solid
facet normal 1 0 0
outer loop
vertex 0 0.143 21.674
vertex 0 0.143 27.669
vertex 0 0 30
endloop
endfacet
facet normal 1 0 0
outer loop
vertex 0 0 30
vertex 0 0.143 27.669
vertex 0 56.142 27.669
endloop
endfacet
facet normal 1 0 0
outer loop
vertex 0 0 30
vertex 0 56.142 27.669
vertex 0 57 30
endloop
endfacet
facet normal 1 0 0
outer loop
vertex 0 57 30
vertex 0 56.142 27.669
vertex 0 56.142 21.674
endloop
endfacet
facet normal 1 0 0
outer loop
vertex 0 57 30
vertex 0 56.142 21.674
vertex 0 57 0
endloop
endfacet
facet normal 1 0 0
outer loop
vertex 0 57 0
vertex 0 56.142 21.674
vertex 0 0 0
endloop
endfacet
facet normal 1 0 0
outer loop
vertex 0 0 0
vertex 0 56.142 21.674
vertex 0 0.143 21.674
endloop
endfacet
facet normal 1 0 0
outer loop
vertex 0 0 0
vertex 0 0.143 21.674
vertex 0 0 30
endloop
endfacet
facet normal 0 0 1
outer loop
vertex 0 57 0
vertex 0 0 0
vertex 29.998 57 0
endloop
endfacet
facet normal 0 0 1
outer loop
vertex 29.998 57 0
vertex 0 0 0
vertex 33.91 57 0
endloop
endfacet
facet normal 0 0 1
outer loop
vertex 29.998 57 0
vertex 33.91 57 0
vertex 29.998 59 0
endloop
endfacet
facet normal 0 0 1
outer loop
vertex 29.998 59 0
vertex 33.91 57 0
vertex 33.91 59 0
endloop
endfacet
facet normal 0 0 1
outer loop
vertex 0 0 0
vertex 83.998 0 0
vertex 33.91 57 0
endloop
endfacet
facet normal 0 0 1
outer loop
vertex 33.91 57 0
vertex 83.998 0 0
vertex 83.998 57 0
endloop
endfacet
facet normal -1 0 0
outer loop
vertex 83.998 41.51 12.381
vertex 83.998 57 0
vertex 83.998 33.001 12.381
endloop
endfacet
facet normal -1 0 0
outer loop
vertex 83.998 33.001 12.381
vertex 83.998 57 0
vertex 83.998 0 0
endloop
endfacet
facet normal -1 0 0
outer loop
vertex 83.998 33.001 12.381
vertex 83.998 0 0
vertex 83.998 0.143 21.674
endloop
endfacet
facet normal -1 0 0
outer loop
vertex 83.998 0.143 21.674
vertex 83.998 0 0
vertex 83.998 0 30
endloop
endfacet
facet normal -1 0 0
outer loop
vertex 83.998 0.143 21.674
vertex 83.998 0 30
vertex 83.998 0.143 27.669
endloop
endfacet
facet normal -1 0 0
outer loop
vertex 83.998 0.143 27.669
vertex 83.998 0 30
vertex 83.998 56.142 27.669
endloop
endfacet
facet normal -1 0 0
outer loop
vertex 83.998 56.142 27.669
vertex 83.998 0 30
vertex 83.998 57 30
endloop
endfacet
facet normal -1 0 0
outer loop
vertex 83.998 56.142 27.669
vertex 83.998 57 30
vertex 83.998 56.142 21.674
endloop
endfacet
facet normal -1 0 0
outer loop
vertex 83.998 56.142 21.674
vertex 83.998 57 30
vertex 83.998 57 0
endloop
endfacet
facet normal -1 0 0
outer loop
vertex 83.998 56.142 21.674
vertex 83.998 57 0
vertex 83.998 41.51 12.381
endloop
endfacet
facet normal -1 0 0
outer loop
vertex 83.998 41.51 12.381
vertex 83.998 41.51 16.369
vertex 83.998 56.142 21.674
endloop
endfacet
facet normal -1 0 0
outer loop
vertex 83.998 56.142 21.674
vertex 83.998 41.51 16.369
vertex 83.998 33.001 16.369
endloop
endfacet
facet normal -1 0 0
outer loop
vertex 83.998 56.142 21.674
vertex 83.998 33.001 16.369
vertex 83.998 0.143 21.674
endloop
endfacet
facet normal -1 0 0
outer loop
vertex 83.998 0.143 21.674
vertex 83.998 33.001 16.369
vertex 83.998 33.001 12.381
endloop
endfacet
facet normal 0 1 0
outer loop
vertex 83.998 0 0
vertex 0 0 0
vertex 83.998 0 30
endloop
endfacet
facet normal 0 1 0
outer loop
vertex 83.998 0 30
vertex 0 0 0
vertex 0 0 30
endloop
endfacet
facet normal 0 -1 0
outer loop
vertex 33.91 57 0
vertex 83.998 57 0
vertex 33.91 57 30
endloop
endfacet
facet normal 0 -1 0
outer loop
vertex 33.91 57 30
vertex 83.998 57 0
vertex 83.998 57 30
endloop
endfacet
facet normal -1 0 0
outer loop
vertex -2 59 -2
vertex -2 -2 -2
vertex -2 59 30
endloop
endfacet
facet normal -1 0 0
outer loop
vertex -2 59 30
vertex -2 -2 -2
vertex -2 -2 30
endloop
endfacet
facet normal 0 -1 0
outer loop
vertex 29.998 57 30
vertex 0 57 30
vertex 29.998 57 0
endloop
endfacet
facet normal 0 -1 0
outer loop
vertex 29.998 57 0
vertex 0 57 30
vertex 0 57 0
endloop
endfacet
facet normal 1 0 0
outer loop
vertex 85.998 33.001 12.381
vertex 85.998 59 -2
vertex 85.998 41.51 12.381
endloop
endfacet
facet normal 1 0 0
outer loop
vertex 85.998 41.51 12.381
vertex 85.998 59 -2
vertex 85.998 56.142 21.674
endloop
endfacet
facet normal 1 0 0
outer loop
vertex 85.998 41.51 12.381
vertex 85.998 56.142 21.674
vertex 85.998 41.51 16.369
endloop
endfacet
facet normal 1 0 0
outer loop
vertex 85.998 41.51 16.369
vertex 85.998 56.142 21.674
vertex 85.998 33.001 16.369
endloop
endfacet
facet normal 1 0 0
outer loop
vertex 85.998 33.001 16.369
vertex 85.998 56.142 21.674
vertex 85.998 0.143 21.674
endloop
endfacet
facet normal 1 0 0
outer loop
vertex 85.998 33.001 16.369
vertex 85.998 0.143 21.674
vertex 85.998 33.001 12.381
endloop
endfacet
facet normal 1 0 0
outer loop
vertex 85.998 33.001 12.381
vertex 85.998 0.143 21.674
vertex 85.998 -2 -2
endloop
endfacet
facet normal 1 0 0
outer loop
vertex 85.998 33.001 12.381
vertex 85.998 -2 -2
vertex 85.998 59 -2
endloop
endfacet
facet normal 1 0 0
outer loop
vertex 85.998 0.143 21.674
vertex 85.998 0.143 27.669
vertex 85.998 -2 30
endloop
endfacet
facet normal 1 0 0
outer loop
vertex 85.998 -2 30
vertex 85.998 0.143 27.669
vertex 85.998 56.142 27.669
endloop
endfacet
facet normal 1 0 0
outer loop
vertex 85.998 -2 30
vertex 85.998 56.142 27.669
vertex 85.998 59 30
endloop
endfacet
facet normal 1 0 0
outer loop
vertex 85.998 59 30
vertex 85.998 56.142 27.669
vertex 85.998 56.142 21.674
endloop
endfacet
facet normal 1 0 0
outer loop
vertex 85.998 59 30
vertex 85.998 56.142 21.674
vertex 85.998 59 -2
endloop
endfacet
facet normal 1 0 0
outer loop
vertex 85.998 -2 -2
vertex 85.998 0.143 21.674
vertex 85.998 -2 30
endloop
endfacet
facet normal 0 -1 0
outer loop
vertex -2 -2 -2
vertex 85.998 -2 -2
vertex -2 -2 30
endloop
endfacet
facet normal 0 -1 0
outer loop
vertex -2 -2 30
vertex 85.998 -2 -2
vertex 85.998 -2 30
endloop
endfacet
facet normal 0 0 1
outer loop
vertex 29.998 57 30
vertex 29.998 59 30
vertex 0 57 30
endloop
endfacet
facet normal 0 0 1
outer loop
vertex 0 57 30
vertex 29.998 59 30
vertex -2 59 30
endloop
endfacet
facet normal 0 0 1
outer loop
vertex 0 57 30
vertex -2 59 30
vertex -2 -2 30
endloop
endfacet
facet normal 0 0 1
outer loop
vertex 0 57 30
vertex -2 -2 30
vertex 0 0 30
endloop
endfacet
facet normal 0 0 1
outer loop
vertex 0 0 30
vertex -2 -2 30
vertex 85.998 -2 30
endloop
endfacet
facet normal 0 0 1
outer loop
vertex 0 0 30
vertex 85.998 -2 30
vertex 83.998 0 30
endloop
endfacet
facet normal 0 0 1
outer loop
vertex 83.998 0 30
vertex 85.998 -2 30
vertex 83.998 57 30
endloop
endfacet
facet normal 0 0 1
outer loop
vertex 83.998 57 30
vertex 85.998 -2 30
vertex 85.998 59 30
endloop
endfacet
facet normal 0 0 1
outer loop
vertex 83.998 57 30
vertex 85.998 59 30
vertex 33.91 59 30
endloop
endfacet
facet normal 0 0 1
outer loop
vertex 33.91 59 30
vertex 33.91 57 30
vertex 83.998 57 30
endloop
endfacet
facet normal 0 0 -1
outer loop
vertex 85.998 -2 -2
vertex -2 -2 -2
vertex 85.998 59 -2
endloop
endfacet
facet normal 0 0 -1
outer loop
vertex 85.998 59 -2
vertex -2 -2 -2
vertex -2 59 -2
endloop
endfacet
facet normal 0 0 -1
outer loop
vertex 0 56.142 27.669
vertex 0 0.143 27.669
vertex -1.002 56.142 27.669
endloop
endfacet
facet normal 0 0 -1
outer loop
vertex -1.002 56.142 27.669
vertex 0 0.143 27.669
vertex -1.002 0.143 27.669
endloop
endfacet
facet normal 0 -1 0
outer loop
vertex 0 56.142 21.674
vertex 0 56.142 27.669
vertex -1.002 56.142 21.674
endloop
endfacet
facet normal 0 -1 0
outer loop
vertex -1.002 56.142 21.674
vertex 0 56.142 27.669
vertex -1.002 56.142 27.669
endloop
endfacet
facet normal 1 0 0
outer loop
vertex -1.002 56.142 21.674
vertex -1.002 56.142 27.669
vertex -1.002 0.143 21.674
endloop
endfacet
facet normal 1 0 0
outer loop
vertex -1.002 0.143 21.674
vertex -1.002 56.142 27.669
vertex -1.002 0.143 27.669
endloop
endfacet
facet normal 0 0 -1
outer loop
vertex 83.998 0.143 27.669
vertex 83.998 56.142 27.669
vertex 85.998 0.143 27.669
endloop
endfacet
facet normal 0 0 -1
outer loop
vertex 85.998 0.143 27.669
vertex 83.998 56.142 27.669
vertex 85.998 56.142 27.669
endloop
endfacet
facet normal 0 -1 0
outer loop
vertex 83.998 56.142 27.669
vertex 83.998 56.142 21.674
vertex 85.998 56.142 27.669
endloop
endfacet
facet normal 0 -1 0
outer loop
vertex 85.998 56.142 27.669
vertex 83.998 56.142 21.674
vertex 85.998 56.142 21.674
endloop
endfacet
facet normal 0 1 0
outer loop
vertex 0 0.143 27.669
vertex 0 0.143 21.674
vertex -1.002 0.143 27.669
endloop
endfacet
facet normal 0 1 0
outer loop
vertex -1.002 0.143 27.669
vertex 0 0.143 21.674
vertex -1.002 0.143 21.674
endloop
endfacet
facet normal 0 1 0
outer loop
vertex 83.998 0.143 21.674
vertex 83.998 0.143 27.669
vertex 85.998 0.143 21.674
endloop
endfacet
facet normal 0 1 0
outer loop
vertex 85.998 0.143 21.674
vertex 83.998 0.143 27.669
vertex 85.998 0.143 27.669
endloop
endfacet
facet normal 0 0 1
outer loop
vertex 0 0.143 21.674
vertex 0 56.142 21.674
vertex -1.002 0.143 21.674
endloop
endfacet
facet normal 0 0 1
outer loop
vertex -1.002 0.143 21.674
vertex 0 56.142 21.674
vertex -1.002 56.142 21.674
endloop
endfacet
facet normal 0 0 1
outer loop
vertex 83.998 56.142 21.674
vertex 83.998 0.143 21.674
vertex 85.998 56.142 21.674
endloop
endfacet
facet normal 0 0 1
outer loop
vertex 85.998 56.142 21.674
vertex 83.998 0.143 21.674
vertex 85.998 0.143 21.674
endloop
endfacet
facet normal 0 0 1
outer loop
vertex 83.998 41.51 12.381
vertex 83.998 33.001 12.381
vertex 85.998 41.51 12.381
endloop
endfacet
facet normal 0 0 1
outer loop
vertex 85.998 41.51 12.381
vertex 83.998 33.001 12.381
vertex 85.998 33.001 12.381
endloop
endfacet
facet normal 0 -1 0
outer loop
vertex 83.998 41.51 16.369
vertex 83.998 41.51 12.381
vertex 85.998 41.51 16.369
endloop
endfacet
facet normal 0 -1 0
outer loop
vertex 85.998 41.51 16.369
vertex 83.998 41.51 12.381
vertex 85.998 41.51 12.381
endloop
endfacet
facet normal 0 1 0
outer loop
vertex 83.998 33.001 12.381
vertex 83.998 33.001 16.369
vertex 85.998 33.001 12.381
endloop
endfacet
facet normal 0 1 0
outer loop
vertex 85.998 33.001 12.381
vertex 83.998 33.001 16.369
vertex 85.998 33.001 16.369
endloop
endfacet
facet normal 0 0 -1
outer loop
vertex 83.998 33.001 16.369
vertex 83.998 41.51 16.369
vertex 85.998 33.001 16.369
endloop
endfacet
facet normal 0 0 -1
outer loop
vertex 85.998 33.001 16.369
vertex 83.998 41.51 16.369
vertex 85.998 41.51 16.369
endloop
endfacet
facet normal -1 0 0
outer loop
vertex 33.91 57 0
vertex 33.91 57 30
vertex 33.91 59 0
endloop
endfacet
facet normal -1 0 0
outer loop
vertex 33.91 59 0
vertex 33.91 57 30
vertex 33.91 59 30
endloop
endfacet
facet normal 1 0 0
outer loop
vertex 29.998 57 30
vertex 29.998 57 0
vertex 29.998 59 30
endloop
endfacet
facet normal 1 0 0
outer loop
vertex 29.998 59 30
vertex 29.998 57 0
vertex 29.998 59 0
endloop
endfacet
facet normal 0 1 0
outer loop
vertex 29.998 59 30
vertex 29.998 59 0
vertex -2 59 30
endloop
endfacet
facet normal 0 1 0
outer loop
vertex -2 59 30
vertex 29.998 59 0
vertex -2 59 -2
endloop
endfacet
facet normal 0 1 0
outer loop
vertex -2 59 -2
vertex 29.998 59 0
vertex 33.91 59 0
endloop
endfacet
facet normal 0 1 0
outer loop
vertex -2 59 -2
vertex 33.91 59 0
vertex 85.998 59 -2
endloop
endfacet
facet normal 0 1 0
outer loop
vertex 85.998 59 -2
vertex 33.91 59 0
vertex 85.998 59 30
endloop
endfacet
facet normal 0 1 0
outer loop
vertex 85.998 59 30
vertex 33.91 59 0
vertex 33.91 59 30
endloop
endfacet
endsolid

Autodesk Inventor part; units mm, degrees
ref_plane "YZ Plane" through (0, 0, 0) normal (1, 0, 0) x (0, 1, 0)
ref_plane "XZ Plane" through (0, 0, 0) normal (0, 1, 0) x (-1, 0, 0)
ref_plane "XY Plane" through (0, 0, 0) normal (0, 0, 1) x (1, 0, 0)
sketch "Sketch1" plane through (0, 0, 0) normal (0, 0, 1) x (1, 0, 0)
  line L0 (0, 0) -> (83.9978, 0)
  line L1 (83.9978, 0) -> (83.9978, 56.9999)
  line L2 (83.9978, 56.9999) -> (0, 56.9999)
  line L3 (0, 56.9999) -> (0, 0)
  dimension "d0" = 83.9978
  dimension "d1" = 56.9999
extrude "Extrusion1" add sketch "Sketch1" along normal blind 29.9999
shell "Shell1" thickness 2 outward yes removed faces 1 at (27.9993, 37.9999, 29.9999)
sketch "Sketch2" plane through (85.9978, -2, -2) normal (1, 0, 0) x (0, 0, -1)
  point P0 (-2, 2)
sketch "Sketch3" plane through (85.9978, -2, -2) normal (1, 0, 0) x (0, 0, -1)
  line L0 (-2, 58.9999) -> (-31.9999, 58.9999) projected
  line L1 (-29.6685, 58.1425) -> (-23.6741, 58.1425)
  line L2 (-23.6741, 58.1425) -> (-23.6741, 2.1426)
  line L3 (-23.6741, 2.1426) -> (-29.6685, 2.1426)
  line L4 (-29.6685, 2.1426) -> (-29.6685, 58.1425)
  point P0 (-2, 2)
  dimension "d5" = 5.9944
  dimension "d6" = 55.9999
extrude "Extrusion2" cut sketch "Sketch3" against normal blind 87.0001
sketch "Sketch4" plane through (85.9978, -2, -2) normal (1, 0, 0) x (0, 0, -1)
  line L0 (-14.3813, 35.0012) -> (-18.3691, 35.0012)
  line L1 (-18.3691, 35.0012) -> (-18.3691, 43.5102)
  line L2 (-18.3691, 43.5102) -> (-14.3813, 43.5102)
  line L3 (-14.3813, 43.5102) -> (-14.3813, 35.0012)
  point P0 (-2, 2)
  point P1 (-13.7922, 50.8)
  dimension "d9" = 3.9878
  dimension "d10" = 8.509
extrude "Extrusion3" cut sketch "Sketch4" against normal blind 12.7
sketch "Sketch5" plane through (-2, 58.9999, -2) normal (0, 1, 0) x (1, 0, 0)
  line L0 (85.9978, -31.9999) -> (2, -31.9999) projected
  line L1 (31.9983, -31.9999) -> (35.9099, -31.9999)
  line L2 (35.9099, -31.9999) -> (35.9099, -2)
  line L3 (35.9099, -2) -> (31.9983, -2)
  line L4 (31.9983, -2) -> (31.9983, -31.9999)
  point P0 (2, -2)
  dimension "d13" = 3.9116
extrude "Extrusion4" cut sketch "Sketch5" against normal blind 12.7
properties part number "case-v3"
